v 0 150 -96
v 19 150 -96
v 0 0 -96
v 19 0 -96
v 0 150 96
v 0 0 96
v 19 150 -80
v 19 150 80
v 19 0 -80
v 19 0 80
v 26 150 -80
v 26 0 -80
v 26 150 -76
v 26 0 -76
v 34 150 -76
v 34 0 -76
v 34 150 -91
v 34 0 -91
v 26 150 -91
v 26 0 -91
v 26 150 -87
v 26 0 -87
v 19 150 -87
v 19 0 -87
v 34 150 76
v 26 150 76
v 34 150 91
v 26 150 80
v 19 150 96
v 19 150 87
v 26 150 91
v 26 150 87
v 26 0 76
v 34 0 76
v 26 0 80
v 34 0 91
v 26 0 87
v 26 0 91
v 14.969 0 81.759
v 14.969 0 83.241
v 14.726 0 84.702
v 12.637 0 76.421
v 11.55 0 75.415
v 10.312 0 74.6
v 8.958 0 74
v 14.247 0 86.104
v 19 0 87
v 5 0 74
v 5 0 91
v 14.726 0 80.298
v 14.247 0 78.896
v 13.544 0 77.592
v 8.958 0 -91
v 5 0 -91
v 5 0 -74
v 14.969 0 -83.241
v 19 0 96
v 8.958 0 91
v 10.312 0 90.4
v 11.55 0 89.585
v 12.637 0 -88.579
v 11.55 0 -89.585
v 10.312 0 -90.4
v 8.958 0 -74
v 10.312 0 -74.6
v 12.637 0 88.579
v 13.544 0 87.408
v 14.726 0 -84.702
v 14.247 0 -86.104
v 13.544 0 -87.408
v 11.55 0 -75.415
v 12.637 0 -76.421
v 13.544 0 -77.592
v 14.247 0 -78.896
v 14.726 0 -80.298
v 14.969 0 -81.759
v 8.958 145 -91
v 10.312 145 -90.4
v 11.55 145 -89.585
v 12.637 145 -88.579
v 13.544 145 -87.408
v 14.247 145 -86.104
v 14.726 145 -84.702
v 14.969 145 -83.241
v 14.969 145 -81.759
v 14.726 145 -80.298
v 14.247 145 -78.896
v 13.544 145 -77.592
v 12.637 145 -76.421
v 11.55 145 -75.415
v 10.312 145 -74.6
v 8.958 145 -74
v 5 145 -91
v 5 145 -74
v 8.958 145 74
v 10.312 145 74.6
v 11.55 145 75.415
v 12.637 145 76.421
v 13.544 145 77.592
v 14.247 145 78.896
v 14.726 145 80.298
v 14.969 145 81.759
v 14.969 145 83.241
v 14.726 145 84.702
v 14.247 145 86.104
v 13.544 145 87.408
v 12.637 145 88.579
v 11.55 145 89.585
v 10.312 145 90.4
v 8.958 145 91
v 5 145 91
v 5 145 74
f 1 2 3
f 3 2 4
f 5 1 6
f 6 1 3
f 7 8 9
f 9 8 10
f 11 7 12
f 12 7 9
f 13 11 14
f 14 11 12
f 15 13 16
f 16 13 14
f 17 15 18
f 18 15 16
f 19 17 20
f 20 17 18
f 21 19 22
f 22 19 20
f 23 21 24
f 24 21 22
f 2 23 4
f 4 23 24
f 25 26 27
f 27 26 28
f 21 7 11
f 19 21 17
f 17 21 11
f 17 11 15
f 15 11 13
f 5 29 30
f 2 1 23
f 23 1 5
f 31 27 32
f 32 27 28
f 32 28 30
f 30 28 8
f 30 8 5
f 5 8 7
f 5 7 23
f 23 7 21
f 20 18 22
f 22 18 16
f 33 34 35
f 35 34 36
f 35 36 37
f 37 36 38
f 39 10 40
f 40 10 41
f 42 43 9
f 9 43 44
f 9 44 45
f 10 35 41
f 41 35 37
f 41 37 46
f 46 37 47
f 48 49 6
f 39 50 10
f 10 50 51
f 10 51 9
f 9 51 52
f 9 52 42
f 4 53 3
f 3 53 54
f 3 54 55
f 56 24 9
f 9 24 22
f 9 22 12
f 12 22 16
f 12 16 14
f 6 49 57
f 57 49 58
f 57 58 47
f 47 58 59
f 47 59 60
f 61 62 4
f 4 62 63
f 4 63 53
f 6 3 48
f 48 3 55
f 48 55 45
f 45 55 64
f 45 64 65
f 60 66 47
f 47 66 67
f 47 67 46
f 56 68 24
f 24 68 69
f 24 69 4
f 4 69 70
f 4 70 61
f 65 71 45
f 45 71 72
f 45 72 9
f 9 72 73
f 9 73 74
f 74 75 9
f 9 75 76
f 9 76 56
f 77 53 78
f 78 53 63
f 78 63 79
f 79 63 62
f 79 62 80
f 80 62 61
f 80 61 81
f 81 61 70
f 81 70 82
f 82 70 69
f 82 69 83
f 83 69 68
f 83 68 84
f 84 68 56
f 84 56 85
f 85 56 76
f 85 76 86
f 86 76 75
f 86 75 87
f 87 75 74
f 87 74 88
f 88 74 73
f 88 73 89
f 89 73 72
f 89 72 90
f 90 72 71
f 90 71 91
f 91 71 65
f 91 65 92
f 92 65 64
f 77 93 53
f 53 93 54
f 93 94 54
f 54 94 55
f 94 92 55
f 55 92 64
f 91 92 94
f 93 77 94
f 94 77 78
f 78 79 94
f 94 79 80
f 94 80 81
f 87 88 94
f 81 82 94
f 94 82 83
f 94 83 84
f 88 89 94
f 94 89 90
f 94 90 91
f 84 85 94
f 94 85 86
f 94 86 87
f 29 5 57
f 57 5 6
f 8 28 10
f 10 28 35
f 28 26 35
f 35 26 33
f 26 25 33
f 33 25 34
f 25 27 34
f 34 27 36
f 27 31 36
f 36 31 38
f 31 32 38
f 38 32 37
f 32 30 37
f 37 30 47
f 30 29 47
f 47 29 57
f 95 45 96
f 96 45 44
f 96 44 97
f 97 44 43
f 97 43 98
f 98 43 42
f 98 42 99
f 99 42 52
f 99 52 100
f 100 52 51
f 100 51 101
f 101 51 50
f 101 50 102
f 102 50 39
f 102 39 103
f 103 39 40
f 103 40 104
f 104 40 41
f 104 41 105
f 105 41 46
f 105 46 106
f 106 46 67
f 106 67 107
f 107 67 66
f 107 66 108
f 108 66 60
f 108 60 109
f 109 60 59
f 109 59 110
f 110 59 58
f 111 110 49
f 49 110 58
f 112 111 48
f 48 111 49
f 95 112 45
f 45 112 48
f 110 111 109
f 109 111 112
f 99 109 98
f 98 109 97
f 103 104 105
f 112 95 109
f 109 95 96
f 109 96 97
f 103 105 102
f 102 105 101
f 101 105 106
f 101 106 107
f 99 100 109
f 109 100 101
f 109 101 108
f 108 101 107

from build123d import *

# Parameters (mm, degrees)
ESTRUSIONE_ESTRUSIONE1_DEPTH = 150
TAGLIO_ESTRUSIONE1_DEPTH     = 145


with BuildPart() as part:
    # Schizzo2 → Estrusione-Estrusione1 (new body)
    with BuildSketch(Plane(origin=(0, 0, 0), x_dir=(1, 0, 0), z_dir=(0, 1, 0))):
        Polygon((19, 96), (19, 87), (26, 87), (26, 91), (34, 91), (34, 76), (26, 76), (26, 80), (19, 80), (19, 0), (0, 0), (0, 96), align=None)
    extrude(amount=ESTRUSIONE_ESTRUSIONE1_DEPTH)

    # Schizzo3 → Taglio-Estrusione1 (cut)
    with BuildSketch(Plane.XZ):
        with BuildLine():
            Line((8.958039892, -91), (5, -91))
            Line((5, -91), (5, -74))
            Line((5, -74), (8.958039892, -74))
            ThreePointArc((8.958039892, -74), (15, -82.5), (8.958039892, -91))
        make_face()
    extrude(amount=-TAGLIO_ESTRUSIONE1_DEPTH, mode=Mode.SUBTRACT)

    # Specchia2: part across plane


with BuildPart() as part_1:
    add(part.part)
    add(part.part.mirror(Plane(origin=(19, 150, 0), x_dir=(1, 0, 0), z_dir=(0, 0, -1))))


solid = part_1.part
